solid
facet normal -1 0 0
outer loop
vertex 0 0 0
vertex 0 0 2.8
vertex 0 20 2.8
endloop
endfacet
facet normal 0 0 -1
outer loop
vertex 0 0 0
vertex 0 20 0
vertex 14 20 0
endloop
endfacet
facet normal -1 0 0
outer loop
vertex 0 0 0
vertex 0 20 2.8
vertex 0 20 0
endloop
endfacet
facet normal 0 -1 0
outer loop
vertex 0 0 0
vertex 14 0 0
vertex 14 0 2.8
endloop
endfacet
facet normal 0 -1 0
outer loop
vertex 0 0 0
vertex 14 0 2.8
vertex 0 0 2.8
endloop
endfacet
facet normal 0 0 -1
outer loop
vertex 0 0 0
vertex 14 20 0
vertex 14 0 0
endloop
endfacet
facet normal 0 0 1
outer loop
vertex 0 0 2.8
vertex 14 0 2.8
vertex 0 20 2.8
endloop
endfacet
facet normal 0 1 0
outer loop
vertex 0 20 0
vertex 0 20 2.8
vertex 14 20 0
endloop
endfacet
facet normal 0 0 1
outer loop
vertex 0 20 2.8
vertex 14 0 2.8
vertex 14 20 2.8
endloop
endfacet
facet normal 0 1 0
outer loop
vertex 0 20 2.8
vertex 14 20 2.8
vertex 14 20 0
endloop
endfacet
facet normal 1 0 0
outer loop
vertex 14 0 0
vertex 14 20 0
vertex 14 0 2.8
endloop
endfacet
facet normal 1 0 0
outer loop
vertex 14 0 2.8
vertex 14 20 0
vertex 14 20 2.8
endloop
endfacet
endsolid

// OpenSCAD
/* Warning, this is a very basic generator with a lot of approximation 
input data : [PQFP, KLB, 14x20x2.8mm, 100, , B, C04-21293B]
generated by com.zoubworld.electronics.cad.model3d.Basic
Date : Sun Feb 15 10:50:49 CET 2026
*/

//body
color("black")
translate([0,0,0])
cube([14.0,20.0,2.8], center=false);
